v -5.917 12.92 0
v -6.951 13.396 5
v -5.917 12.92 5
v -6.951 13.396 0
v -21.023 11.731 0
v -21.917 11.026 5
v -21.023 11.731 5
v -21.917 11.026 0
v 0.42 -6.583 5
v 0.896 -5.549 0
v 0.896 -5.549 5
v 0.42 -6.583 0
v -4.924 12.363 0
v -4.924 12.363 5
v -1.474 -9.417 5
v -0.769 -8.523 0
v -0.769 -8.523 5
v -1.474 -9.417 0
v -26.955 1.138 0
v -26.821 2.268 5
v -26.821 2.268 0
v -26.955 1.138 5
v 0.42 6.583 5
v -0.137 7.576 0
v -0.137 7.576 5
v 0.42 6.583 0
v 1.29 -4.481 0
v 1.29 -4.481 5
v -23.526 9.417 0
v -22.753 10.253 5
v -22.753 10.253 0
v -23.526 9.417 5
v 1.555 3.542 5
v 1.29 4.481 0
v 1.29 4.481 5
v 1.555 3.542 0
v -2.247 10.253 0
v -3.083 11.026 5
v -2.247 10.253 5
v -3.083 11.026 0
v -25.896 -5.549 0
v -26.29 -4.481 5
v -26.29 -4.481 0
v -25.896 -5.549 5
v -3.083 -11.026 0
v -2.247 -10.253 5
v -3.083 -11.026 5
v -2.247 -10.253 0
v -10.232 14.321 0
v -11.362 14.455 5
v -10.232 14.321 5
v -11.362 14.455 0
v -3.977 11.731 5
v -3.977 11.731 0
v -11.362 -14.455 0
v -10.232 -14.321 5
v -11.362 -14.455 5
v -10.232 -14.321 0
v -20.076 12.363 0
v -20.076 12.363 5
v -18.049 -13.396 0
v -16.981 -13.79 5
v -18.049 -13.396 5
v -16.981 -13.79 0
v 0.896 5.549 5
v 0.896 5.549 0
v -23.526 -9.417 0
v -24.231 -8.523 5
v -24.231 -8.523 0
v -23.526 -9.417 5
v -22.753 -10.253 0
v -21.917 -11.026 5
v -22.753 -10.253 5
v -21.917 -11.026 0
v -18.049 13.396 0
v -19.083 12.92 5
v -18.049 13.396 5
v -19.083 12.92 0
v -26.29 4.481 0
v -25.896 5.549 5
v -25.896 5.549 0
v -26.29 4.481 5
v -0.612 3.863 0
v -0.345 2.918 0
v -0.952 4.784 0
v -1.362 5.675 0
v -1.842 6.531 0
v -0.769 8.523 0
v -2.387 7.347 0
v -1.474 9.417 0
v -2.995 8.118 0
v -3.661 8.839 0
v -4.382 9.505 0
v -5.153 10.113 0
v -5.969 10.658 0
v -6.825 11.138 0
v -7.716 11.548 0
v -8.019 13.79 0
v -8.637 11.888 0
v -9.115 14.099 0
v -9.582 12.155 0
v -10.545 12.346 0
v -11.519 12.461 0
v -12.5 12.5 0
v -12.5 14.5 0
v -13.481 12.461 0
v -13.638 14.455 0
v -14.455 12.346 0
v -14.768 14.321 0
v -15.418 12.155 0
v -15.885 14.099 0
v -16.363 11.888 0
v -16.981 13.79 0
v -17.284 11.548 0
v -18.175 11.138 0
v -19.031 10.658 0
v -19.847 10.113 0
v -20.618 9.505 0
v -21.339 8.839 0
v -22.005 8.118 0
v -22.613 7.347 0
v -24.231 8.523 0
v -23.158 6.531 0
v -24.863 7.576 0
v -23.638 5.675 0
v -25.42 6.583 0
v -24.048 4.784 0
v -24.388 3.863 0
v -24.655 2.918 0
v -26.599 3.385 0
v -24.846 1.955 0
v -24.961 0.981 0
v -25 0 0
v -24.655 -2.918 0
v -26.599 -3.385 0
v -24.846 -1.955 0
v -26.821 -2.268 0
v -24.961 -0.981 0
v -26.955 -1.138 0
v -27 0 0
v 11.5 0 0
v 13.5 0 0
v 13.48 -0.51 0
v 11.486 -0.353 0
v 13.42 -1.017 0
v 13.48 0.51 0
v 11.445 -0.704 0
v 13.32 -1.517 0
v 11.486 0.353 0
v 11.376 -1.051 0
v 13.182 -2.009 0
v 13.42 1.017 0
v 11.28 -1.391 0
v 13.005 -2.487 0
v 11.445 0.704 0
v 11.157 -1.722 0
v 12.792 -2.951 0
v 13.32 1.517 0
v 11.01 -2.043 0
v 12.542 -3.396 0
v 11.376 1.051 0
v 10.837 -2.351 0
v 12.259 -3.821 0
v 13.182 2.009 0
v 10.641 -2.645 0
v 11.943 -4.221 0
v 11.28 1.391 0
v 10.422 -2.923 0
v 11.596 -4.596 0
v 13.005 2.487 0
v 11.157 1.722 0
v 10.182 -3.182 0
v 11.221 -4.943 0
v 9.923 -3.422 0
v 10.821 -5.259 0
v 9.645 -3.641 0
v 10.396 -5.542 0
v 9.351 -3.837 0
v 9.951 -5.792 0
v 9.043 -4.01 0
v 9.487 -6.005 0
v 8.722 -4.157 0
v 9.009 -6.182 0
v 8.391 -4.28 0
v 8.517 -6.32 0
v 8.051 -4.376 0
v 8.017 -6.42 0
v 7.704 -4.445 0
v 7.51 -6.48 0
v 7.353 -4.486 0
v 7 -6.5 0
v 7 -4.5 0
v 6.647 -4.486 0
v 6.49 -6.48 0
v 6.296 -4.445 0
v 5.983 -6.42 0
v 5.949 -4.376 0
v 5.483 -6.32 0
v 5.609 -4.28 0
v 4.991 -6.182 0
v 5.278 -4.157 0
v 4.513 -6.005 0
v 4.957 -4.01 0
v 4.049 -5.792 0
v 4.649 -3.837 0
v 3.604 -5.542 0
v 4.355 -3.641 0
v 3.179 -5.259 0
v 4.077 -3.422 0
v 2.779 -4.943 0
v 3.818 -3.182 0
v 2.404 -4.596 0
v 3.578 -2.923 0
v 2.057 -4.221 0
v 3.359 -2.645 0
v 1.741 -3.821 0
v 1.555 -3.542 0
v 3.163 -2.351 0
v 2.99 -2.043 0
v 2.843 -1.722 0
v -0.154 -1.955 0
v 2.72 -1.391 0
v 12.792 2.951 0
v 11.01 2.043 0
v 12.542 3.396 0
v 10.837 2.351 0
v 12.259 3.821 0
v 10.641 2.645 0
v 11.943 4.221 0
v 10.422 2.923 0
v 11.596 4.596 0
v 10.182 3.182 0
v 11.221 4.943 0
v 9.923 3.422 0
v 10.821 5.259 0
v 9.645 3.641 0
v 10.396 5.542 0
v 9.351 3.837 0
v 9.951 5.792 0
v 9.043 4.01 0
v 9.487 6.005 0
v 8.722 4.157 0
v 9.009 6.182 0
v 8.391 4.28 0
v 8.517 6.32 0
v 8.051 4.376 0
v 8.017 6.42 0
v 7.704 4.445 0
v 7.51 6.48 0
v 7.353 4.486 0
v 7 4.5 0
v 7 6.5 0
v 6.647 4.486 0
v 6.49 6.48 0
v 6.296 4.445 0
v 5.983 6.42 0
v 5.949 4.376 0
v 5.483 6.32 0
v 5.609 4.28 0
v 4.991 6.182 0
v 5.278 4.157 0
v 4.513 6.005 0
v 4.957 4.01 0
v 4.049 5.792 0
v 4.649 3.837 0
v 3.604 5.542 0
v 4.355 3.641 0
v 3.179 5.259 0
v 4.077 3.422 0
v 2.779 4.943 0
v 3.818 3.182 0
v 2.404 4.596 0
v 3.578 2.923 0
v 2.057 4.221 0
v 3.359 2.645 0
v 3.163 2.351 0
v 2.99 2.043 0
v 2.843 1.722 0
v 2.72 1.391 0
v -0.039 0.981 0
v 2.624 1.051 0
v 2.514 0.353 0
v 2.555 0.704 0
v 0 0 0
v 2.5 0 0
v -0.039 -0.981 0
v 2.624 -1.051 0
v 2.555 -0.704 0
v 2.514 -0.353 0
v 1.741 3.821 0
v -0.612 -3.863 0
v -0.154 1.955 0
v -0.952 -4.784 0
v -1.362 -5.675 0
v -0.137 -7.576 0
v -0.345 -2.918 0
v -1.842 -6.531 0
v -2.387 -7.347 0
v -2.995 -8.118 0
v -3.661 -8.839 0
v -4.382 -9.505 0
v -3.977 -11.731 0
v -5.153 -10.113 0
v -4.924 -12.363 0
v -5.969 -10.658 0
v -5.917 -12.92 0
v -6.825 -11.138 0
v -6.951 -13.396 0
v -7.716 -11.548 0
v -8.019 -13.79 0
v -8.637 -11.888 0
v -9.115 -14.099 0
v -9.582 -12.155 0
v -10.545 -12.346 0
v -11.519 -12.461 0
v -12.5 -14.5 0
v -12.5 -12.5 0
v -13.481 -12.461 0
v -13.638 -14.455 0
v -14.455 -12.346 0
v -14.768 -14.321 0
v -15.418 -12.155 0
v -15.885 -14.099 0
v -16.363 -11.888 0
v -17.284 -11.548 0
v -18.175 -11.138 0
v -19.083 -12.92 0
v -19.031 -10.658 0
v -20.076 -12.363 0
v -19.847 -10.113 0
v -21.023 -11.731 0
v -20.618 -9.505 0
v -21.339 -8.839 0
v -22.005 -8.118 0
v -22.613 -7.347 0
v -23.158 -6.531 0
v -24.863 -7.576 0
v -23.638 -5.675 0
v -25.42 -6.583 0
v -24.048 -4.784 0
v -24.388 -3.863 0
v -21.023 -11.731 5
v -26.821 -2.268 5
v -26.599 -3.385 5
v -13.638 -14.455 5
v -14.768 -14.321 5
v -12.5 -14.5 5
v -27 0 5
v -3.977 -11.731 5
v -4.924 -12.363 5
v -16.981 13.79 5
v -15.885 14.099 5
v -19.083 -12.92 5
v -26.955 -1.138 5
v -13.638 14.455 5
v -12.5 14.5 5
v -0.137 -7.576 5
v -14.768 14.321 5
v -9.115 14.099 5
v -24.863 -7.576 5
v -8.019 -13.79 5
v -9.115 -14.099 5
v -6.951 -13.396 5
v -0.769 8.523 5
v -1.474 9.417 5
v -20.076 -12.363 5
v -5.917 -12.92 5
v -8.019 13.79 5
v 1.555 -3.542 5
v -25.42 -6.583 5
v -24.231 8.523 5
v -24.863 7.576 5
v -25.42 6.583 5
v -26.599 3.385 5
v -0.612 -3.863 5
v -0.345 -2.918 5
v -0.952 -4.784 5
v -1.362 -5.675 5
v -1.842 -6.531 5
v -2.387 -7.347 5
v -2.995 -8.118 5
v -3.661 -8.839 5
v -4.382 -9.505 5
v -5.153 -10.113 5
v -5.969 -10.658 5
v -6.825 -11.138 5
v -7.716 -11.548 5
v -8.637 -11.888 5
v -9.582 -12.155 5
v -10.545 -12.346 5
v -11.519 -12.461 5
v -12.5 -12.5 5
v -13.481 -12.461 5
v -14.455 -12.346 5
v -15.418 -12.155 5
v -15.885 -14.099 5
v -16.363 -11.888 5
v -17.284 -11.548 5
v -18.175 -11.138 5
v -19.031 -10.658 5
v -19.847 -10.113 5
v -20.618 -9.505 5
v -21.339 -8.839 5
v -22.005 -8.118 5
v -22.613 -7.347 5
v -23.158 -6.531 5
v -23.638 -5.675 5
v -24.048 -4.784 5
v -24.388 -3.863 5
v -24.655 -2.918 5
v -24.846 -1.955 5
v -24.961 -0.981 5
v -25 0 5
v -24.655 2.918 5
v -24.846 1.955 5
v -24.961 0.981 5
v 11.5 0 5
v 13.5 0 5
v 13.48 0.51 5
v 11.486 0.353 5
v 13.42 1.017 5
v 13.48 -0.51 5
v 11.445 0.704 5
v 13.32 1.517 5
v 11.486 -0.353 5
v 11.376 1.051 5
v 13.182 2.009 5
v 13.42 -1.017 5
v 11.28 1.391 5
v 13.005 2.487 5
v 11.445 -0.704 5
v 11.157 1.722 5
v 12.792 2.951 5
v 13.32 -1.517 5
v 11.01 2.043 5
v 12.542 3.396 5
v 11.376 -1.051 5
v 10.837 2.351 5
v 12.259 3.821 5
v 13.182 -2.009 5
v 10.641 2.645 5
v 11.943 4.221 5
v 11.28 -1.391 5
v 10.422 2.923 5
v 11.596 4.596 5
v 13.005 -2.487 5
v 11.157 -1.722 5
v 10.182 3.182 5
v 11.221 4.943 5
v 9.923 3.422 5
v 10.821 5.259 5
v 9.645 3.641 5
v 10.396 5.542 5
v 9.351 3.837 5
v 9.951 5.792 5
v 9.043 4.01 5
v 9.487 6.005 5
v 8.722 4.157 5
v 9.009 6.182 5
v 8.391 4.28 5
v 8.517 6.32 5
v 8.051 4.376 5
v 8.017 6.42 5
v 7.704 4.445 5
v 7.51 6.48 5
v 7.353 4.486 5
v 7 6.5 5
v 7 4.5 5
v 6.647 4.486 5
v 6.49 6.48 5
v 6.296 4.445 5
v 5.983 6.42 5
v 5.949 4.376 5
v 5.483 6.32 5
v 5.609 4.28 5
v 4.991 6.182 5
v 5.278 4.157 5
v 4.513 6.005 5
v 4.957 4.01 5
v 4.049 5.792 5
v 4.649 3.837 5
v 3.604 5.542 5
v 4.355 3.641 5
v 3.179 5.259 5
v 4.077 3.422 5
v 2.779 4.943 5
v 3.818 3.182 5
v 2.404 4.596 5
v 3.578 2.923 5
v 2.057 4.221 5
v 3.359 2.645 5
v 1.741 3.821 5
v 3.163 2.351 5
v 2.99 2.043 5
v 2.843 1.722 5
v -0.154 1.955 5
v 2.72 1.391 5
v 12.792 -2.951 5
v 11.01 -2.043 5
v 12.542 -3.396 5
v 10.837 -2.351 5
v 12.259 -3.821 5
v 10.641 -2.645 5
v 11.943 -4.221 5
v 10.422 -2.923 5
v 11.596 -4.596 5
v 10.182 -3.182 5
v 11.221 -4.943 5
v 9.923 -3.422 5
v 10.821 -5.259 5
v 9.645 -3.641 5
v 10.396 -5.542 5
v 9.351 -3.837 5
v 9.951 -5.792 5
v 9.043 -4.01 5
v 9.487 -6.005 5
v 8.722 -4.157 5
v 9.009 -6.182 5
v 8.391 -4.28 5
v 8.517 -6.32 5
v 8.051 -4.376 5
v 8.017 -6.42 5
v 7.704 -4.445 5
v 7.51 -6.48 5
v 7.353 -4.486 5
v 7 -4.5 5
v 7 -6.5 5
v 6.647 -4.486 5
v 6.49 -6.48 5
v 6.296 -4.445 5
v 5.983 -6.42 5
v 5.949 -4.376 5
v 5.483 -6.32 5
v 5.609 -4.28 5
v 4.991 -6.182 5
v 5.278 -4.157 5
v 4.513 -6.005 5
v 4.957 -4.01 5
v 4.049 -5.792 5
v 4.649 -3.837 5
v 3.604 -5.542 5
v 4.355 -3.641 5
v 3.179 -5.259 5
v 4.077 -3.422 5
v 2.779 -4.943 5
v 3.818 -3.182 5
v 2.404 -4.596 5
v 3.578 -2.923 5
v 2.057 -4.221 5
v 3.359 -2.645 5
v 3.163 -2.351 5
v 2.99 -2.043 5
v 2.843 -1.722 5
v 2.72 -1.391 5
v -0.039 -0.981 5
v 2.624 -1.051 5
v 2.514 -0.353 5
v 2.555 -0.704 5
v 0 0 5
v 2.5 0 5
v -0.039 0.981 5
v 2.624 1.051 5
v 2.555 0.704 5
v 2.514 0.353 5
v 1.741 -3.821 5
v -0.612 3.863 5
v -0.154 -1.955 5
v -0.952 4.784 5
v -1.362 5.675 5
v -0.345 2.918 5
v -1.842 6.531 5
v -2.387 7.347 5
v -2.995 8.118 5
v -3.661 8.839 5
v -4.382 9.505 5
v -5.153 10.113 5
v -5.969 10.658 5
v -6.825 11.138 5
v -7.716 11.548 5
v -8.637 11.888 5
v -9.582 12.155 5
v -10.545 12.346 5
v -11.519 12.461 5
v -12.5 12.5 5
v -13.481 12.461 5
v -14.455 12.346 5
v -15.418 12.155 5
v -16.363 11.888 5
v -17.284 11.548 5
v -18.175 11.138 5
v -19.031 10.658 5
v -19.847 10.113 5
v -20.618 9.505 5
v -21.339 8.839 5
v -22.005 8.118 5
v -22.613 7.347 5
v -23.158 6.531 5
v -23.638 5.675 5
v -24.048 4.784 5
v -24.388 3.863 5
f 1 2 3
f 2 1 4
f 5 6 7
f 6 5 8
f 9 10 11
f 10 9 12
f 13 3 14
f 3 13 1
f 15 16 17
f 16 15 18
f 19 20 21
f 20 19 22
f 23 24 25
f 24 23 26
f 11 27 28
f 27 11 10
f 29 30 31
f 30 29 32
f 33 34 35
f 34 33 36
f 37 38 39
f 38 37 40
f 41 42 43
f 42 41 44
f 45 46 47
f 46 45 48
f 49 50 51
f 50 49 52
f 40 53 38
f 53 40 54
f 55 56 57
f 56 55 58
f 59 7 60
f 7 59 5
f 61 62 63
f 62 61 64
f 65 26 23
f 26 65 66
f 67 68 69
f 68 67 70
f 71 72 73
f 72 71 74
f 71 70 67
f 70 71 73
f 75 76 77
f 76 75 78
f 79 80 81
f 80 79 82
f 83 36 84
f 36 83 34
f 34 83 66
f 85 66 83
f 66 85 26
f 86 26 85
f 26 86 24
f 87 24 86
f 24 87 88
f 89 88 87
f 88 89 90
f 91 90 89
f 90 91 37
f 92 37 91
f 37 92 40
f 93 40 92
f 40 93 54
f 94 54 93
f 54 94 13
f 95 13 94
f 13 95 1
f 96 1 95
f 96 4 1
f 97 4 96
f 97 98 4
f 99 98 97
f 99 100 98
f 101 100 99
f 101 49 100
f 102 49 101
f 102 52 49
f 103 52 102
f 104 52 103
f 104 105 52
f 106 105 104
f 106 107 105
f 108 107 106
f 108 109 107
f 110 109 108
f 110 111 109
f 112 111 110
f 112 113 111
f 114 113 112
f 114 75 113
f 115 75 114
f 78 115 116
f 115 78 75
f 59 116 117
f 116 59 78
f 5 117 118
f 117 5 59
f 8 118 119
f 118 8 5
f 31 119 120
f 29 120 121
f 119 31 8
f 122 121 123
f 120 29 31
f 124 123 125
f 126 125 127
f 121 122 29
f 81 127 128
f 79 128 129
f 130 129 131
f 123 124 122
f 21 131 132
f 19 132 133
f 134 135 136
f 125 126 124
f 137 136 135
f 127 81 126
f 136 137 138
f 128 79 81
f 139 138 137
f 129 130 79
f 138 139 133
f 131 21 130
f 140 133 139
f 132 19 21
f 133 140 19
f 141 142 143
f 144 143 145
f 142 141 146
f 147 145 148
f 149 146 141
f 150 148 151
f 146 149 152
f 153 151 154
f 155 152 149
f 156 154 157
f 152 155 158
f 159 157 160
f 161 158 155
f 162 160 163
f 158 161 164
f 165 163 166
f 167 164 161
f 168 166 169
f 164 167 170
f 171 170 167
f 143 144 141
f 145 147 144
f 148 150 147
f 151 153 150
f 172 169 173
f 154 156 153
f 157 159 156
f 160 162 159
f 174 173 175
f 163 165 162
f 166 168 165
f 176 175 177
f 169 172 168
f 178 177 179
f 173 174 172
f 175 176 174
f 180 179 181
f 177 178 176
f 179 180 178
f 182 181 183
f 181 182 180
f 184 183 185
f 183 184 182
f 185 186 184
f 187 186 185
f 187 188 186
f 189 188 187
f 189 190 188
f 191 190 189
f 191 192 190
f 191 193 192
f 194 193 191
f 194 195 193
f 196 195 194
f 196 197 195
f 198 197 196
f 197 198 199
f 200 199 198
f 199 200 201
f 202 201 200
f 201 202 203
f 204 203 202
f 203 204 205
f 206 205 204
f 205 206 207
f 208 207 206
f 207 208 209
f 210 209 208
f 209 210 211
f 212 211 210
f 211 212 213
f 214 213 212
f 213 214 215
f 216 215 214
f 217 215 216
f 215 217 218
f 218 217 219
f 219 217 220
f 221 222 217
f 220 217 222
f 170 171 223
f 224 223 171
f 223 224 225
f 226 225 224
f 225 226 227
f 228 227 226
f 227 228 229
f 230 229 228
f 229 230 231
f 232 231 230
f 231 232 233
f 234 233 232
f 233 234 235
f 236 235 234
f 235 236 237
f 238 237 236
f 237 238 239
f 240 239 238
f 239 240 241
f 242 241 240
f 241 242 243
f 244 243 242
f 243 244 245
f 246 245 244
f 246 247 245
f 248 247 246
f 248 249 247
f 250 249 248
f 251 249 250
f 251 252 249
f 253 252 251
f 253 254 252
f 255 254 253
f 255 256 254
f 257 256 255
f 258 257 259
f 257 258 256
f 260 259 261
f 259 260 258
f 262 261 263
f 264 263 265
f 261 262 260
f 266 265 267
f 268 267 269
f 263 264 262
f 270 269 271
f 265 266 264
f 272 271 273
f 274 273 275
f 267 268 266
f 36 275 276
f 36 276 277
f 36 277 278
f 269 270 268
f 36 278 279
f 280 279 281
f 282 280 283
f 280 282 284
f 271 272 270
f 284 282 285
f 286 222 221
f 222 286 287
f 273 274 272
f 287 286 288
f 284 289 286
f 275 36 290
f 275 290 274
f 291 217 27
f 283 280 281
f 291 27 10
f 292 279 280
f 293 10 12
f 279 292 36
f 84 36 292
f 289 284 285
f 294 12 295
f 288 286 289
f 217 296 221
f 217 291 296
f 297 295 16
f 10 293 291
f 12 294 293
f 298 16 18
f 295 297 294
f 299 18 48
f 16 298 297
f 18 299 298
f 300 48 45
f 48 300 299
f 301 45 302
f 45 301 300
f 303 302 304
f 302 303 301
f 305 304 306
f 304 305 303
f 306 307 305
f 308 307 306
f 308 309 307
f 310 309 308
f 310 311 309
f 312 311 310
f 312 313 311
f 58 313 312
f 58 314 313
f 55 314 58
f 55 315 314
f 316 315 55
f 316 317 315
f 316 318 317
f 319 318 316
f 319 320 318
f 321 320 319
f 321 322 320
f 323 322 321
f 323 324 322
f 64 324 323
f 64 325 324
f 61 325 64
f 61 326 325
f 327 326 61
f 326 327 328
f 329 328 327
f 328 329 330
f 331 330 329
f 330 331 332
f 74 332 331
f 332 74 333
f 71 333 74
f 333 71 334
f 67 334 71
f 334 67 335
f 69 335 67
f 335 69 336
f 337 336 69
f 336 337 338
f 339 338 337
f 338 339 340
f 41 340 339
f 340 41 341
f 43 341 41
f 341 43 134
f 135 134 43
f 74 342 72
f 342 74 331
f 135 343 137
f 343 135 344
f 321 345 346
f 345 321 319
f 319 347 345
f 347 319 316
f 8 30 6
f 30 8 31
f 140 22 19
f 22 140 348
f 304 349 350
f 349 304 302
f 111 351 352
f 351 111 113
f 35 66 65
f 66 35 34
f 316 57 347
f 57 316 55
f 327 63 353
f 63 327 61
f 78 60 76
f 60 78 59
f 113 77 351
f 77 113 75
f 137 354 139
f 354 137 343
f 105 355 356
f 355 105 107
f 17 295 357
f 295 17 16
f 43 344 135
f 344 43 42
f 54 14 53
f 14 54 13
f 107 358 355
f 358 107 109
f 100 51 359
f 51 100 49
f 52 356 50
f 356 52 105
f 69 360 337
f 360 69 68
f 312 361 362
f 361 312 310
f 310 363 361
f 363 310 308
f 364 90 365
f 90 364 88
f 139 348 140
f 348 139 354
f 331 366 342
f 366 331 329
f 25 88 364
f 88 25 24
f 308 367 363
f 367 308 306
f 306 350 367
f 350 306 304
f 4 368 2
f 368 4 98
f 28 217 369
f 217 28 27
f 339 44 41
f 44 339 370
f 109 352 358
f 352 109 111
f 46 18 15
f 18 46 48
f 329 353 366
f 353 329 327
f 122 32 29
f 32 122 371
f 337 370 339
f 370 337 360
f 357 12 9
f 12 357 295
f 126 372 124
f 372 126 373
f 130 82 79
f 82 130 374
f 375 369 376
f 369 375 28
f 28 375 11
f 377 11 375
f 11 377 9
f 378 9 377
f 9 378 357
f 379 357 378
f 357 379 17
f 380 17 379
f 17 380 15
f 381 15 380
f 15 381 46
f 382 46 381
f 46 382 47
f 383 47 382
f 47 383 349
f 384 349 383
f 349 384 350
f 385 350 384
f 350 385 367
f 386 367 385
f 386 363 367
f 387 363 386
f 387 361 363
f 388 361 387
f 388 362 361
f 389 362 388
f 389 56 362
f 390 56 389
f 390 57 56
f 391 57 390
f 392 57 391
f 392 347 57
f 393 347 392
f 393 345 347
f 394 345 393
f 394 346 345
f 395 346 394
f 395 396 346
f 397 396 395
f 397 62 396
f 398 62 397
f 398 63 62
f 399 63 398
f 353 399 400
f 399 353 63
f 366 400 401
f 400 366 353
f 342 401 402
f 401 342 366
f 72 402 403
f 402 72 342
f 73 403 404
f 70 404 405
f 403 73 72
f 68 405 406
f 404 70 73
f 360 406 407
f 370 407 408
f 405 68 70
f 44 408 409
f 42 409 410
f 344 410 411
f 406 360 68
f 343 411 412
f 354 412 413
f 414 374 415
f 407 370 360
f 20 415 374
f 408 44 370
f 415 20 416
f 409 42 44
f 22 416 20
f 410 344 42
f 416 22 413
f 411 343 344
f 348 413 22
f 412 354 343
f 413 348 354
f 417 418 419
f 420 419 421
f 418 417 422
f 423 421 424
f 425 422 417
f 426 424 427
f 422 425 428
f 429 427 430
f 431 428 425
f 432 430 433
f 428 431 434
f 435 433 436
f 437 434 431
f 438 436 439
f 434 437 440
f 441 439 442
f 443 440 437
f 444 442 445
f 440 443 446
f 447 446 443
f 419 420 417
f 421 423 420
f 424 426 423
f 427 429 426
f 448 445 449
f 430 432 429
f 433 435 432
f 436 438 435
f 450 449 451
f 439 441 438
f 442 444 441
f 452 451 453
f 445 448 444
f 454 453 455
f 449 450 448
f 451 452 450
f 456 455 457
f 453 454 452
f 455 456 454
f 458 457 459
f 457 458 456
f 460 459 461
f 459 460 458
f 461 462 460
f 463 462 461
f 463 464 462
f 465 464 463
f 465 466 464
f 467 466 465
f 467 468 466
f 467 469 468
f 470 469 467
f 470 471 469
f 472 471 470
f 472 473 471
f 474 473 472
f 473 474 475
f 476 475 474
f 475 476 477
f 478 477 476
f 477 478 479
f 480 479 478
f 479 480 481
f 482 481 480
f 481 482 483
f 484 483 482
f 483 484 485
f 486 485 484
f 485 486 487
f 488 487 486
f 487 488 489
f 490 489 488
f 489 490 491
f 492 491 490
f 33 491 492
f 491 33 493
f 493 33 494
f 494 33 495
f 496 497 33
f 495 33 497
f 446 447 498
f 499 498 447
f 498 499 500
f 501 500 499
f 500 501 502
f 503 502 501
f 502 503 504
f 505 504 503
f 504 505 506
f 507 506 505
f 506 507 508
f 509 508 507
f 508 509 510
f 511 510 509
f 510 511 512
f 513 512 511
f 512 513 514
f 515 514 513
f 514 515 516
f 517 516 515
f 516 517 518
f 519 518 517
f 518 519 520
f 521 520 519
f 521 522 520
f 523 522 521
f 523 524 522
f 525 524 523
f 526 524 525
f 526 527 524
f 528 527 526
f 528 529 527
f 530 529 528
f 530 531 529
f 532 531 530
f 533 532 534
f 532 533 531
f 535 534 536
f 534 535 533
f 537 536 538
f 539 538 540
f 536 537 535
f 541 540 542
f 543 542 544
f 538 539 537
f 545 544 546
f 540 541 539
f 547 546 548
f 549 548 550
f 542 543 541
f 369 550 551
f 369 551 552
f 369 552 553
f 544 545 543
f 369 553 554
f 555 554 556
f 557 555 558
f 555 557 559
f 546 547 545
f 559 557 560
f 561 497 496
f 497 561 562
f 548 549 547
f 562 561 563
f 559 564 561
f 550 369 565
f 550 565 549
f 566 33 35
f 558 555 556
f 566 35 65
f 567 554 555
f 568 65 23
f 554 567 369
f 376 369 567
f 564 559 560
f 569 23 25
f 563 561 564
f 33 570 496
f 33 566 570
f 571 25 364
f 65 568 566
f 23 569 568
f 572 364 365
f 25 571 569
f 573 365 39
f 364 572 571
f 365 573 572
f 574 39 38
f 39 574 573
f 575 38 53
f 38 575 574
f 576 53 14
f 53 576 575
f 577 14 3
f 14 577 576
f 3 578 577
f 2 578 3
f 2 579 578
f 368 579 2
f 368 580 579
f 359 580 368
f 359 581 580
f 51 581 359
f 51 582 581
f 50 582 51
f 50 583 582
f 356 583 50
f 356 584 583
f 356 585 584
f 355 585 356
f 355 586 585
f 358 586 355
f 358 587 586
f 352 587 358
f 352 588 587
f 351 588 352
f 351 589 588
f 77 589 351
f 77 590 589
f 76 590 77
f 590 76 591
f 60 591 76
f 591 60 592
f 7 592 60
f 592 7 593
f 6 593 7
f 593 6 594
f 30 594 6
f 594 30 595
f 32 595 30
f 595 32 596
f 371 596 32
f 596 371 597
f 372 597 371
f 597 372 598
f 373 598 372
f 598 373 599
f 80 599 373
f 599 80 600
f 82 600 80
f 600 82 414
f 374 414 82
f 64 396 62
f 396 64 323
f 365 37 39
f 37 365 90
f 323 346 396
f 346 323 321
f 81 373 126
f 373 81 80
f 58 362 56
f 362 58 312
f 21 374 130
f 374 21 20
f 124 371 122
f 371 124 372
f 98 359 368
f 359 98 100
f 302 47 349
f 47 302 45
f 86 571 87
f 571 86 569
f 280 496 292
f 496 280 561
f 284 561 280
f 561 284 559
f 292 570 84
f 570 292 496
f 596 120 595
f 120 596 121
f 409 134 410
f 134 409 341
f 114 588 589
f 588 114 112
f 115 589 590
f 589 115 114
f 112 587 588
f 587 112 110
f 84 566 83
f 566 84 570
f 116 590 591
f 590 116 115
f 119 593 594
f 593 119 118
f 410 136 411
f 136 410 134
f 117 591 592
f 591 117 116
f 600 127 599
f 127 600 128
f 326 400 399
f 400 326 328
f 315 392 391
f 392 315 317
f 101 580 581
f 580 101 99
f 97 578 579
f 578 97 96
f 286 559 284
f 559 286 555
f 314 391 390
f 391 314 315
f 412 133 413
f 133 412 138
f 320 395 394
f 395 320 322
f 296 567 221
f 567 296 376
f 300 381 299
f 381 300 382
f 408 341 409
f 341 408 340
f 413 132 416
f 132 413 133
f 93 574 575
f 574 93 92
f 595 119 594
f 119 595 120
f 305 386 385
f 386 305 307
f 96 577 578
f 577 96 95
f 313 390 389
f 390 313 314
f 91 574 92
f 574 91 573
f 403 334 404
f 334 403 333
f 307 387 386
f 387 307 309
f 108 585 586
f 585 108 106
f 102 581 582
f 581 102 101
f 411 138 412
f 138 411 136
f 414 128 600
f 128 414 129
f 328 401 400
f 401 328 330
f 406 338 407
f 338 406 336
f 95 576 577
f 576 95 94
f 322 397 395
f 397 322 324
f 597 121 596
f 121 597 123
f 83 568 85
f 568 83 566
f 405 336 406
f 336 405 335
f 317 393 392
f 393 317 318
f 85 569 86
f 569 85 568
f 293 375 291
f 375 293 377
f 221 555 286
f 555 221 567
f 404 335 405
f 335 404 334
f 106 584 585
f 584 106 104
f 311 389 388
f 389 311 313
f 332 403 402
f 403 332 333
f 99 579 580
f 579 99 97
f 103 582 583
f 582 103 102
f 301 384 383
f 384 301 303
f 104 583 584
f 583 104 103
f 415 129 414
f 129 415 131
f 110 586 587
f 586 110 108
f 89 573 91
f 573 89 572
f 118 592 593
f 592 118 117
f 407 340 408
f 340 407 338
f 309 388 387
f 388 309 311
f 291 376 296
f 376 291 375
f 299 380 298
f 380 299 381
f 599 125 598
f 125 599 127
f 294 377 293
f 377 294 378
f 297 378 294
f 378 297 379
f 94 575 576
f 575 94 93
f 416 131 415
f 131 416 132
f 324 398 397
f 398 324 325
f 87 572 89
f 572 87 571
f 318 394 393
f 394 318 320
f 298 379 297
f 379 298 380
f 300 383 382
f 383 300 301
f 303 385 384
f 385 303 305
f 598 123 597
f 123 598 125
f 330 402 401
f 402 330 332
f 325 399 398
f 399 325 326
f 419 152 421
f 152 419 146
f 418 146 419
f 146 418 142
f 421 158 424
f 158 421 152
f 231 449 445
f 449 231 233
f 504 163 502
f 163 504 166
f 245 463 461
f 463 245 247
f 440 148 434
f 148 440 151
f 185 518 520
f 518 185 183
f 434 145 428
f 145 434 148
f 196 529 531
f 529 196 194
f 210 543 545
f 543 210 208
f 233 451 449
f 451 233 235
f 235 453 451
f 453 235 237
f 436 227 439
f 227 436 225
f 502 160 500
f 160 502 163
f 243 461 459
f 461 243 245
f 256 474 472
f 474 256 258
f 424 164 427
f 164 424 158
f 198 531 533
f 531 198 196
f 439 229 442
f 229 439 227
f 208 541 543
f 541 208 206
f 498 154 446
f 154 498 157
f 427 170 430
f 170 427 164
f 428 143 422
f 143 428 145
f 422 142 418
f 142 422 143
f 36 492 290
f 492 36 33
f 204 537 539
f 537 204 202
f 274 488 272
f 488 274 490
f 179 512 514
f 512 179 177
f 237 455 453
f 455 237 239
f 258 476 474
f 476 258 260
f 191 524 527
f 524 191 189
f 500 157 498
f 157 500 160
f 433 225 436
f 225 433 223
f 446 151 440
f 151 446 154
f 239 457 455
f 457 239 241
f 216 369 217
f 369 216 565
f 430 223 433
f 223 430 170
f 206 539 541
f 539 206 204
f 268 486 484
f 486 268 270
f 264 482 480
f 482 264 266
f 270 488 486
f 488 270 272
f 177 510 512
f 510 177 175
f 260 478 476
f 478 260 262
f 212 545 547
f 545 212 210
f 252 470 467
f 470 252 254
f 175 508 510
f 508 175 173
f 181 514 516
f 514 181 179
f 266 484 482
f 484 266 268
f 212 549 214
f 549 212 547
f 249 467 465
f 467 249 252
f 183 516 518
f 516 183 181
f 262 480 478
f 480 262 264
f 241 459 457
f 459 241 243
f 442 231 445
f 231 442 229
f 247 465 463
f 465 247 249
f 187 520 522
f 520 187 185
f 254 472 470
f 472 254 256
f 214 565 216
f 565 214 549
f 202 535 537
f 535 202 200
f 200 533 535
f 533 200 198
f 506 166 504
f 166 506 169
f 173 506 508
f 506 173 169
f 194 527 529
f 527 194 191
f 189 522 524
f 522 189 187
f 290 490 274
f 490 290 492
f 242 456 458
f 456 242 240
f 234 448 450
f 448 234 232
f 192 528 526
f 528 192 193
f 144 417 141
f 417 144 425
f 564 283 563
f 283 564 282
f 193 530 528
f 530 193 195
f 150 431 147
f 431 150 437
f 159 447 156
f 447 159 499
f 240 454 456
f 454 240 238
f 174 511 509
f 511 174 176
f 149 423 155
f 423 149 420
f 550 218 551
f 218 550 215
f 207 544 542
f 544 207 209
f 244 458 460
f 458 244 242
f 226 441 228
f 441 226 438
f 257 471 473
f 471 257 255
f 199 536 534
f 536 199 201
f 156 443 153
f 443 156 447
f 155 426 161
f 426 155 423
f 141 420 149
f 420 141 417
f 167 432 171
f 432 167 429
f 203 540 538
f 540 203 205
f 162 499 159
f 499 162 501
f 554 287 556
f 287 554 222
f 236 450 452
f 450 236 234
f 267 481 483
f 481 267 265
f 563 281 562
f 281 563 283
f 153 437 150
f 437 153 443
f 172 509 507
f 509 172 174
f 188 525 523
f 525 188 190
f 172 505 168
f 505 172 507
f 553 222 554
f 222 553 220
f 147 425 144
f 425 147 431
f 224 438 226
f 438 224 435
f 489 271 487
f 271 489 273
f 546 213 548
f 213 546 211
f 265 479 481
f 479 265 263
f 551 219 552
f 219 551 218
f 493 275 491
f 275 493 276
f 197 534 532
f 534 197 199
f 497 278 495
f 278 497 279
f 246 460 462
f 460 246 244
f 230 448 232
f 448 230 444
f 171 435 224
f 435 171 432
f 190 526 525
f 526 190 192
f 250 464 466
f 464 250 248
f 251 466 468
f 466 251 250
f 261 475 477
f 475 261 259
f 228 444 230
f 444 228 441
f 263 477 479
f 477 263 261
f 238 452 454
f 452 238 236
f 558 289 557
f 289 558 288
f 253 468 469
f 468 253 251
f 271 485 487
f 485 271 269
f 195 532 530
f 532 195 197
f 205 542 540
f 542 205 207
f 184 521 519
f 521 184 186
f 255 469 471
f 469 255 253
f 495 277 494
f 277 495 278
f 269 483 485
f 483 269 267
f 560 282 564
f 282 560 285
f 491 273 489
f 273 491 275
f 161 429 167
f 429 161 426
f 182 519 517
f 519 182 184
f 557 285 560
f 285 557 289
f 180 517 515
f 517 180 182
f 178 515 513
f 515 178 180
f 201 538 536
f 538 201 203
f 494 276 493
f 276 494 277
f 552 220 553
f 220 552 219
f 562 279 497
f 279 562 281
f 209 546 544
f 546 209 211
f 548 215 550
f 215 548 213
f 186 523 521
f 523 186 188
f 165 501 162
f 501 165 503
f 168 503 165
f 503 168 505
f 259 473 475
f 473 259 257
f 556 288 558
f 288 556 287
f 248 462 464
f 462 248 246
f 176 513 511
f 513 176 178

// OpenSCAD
// Rich Whiffen
// 2025-08-12 - starting to test parameters for loops

diameter = 25;
height = 5;
thickness = 4;
segment_count = 80;

translate([diameter/2*-1, 0, 0])
difference() {
    cylinder($fn = segment_count,
           $fa = 12,
           $fs = 2,
           h = 5, 
           d = diameter + thickness);
    cylinder($fn = segment_count,
           $fa = 12,
           $fs = 2,
           h = 5, 
           d = diameter);
}

translate([7, 0, 0])
difference() {
    cylinder($fn = segment_count,
           $fa = 12,
           $fs = 2,
           h = 5, 
           d = 9 + thickness);
    cylinder($fn = segment_count,
           $fa = 12,
           $fs = 2,
           h = 5, 
           d = 9);
}
